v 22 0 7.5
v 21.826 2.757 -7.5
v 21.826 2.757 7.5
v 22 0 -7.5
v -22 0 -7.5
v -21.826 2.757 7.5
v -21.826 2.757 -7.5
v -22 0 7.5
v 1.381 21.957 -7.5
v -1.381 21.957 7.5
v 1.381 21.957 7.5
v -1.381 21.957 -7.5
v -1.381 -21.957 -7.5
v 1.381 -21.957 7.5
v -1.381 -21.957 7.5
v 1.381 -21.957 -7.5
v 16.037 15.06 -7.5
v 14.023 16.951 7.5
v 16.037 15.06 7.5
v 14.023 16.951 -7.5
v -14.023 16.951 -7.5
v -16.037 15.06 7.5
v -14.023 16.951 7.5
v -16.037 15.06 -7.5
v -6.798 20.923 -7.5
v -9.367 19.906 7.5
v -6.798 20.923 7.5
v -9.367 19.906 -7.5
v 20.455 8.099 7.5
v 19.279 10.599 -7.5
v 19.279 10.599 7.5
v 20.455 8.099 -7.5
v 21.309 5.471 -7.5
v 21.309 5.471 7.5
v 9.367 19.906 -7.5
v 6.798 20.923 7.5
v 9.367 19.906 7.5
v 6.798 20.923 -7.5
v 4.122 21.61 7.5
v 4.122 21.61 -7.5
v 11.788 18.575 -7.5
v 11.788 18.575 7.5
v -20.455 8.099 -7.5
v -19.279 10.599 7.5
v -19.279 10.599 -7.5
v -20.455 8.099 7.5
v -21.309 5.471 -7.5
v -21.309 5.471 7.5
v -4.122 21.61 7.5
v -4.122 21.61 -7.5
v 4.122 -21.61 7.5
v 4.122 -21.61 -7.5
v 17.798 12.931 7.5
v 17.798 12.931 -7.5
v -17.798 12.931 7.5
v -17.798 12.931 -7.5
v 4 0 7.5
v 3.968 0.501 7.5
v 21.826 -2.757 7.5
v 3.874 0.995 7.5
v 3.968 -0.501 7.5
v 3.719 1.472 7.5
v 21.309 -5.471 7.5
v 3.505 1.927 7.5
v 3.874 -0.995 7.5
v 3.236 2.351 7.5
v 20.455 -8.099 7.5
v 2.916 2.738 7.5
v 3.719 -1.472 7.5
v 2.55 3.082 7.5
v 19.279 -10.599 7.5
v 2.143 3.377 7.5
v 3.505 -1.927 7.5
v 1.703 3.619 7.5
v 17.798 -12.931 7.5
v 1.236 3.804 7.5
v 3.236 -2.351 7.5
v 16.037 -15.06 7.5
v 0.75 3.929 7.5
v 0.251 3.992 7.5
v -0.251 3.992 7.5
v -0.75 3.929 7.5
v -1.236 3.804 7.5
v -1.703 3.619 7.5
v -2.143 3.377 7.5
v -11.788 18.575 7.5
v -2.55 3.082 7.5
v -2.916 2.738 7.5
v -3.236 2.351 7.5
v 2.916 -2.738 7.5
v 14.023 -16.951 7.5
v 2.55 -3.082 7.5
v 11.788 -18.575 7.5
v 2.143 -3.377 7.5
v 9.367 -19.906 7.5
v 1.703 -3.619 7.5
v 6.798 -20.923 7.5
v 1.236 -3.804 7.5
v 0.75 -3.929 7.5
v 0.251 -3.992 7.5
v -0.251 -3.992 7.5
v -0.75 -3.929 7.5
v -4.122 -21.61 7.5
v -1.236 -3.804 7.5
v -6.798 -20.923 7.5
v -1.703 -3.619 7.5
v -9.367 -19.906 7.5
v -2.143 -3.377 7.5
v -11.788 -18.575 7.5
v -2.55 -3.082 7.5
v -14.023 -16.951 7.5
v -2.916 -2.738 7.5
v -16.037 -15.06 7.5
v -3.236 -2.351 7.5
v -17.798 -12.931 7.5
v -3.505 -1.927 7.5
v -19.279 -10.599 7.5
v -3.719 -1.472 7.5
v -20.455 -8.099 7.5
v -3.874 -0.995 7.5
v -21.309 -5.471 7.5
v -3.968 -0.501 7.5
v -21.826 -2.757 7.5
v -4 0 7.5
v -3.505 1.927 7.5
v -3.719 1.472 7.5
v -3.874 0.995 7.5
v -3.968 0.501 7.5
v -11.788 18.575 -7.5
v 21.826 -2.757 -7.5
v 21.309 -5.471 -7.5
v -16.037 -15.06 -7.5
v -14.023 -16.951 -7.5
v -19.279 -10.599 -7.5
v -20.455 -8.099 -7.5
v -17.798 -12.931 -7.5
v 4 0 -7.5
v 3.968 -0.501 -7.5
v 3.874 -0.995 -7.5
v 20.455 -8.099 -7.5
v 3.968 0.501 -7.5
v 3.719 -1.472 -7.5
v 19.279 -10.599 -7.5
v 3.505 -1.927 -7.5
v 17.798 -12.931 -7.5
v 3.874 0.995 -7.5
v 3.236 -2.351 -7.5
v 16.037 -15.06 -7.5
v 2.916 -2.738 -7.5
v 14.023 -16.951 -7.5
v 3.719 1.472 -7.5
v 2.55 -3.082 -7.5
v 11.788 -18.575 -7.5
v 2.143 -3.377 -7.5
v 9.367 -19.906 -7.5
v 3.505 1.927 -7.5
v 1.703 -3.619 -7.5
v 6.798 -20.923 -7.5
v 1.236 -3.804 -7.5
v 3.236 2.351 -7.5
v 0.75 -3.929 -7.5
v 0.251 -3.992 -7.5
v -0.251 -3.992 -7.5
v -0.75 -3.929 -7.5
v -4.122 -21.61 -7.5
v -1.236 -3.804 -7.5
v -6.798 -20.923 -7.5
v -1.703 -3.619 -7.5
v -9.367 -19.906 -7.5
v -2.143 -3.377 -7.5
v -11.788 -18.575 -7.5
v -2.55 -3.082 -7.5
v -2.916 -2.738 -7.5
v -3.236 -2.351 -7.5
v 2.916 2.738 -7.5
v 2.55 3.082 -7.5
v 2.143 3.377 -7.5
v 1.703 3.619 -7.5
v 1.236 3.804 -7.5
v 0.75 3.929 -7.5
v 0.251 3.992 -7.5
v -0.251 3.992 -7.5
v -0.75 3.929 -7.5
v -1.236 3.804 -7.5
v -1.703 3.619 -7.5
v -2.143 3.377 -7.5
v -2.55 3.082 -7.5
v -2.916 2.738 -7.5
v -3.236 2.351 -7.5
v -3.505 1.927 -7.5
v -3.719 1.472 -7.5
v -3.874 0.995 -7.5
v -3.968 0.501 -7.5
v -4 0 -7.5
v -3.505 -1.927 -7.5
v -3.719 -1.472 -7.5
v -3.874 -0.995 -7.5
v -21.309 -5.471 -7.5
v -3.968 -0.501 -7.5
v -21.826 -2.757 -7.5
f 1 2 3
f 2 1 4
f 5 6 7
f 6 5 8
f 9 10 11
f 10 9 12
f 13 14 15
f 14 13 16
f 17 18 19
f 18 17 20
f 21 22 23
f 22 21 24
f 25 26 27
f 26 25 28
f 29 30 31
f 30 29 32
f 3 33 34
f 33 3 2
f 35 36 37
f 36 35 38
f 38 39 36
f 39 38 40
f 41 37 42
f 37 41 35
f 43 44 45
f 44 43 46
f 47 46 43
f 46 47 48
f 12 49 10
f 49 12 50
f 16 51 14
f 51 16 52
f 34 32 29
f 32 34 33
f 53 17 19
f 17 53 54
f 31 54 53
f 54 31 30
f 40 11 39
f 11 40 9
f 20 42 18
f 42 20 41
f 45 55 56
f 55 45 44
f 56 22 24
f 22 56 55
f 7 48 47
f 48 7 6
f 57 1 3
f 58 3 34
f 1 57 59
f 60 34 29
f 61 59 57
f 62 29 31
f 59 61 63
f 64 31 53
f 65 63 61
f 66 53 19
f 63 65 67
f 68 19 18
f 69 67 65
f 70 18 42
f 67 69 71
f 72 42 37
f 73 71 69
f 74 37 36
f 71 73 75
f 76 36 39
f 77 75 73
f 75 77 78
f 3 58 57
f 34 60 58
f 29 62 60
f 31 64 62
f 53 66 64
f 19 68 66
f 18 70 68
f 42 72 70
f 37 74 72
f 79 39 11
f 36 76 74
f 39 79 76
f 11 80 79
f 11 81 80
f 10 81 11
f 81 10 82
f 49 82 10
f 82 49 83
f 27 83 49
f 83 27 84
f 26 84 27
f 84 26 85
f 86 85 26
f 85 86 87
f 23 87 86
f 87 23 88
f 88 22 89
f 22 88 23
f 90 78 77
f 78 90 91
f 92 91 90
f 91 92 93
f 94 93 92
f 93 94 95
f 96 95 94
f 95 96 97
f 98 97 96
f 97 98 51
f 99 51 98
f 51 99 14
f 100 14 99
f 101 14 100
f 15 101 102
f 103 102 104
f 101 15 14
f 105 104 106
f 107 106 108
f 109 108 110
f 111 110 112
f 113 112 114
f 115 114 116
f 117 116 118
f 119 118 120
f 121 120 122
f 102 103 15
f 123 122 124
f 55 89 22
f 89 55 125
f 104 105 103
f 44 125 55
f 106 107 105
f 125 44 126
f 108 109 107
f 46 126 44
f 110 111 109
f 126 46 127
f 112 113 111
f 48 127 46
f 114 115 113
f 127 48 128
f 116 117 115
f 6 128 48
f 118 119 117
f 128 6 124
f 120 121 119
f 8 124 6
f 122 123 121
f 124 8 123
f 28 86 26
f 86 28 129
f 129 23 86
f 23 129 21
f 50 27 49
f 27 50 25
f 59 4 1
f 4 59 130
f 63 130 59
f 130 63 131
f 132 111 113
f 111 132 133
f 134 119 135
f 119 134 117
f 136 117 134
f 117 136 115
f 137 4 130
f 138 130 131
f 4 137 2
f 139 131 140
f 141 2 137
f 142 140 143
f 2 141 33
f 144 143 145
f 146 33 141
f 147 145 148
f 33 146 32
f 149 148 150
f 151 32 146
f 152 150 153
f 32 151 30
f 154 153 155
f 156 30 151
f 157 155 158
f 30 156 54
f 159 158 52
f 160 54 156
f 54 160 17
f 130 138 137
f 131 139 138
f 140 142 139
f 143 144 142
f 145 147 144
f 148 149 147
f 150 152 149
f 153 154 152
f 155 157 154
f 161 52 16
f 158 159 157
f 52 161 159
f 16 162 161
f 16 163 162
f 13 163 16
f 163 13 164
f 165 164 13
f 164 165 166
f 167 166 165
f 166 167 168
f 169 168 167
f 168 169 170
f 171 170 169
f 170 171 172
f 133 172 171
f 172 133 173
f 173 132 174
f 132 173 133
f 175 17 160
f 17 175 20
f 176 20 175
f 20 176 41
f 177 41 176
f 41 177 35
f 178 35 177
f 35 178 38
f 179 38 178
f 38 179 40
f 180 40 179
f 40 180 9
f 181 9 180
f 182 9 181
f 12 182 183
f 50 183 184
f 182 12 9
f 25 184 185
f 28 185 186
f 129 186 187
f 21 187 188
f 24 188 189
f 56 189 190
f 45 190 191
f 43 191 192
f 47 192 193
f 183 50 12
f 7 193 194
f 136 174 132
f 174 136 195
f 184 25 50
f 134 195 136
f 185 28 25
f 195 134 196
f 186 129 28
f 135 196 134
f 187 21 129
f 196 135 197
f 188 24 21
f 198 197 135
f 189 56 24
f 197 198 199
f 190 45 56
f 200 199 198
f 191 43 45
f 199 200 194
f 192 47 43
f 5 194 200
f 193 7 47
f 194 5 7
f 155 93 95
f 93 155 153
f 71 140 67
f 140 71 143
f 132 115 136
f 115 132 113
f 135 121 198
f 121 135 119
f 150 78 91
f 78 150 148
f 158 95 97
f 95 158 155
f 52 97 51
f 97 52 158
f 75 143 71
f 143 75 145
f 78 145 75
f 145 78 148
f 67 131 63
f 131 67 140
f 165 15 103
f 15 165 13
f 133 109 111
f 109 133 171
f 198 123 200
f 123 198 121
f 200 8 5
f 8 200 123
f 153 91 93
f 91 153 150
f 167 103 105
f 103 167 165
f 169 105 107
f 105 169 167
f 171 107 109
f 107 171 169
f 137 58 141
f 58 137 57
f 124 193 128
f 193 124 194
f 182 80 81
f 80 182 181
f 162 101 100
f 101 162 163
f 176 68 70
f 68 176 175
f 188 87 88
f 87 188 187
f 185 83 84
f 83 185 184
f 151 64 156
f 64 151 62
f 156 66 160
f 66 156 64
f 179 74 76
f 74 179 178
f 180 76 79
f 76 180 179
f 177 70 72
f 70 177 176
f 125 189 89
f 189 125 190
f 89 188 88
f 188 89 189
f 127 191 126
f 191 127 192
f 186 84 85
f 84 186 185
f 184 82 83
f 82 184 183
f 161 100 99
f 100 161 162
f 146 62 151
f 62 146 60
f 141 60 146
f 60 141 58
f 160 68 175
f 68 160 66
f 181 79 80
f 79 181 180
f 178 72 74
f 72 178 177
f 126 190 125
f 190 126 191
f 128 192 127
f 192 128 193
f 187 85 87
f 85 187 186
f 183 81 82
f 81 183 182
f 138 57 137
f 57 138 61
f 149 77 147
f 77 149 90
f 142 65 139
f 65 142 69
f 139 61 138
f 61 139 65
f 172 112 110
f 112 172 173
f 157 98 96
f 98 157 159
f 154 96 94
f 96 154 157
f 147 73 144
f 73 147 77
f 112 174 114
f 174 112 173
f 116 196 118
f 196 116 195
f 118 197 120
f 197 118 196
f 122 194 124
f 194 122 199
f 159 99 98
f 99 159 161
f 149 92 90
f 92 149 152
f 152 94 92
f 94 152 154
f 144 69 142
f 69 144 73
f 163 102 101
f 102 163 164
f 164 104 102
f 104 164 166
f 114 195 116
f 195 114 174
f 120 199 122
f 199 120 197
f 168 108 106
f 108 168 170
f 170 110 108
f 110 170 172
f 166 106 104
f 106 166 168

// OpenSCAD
$fn = 50;


difference() {
	union() {
		translate(v = [0, 0, -7.5000000000]) {
			cylinder(h = 15, r = 22.0000000000);
		}
	}
	union() {
		translate(v = [0, 0, -100.0000000000]) {
			cylinder(h = 200, r = 4);
		}
	}
}
